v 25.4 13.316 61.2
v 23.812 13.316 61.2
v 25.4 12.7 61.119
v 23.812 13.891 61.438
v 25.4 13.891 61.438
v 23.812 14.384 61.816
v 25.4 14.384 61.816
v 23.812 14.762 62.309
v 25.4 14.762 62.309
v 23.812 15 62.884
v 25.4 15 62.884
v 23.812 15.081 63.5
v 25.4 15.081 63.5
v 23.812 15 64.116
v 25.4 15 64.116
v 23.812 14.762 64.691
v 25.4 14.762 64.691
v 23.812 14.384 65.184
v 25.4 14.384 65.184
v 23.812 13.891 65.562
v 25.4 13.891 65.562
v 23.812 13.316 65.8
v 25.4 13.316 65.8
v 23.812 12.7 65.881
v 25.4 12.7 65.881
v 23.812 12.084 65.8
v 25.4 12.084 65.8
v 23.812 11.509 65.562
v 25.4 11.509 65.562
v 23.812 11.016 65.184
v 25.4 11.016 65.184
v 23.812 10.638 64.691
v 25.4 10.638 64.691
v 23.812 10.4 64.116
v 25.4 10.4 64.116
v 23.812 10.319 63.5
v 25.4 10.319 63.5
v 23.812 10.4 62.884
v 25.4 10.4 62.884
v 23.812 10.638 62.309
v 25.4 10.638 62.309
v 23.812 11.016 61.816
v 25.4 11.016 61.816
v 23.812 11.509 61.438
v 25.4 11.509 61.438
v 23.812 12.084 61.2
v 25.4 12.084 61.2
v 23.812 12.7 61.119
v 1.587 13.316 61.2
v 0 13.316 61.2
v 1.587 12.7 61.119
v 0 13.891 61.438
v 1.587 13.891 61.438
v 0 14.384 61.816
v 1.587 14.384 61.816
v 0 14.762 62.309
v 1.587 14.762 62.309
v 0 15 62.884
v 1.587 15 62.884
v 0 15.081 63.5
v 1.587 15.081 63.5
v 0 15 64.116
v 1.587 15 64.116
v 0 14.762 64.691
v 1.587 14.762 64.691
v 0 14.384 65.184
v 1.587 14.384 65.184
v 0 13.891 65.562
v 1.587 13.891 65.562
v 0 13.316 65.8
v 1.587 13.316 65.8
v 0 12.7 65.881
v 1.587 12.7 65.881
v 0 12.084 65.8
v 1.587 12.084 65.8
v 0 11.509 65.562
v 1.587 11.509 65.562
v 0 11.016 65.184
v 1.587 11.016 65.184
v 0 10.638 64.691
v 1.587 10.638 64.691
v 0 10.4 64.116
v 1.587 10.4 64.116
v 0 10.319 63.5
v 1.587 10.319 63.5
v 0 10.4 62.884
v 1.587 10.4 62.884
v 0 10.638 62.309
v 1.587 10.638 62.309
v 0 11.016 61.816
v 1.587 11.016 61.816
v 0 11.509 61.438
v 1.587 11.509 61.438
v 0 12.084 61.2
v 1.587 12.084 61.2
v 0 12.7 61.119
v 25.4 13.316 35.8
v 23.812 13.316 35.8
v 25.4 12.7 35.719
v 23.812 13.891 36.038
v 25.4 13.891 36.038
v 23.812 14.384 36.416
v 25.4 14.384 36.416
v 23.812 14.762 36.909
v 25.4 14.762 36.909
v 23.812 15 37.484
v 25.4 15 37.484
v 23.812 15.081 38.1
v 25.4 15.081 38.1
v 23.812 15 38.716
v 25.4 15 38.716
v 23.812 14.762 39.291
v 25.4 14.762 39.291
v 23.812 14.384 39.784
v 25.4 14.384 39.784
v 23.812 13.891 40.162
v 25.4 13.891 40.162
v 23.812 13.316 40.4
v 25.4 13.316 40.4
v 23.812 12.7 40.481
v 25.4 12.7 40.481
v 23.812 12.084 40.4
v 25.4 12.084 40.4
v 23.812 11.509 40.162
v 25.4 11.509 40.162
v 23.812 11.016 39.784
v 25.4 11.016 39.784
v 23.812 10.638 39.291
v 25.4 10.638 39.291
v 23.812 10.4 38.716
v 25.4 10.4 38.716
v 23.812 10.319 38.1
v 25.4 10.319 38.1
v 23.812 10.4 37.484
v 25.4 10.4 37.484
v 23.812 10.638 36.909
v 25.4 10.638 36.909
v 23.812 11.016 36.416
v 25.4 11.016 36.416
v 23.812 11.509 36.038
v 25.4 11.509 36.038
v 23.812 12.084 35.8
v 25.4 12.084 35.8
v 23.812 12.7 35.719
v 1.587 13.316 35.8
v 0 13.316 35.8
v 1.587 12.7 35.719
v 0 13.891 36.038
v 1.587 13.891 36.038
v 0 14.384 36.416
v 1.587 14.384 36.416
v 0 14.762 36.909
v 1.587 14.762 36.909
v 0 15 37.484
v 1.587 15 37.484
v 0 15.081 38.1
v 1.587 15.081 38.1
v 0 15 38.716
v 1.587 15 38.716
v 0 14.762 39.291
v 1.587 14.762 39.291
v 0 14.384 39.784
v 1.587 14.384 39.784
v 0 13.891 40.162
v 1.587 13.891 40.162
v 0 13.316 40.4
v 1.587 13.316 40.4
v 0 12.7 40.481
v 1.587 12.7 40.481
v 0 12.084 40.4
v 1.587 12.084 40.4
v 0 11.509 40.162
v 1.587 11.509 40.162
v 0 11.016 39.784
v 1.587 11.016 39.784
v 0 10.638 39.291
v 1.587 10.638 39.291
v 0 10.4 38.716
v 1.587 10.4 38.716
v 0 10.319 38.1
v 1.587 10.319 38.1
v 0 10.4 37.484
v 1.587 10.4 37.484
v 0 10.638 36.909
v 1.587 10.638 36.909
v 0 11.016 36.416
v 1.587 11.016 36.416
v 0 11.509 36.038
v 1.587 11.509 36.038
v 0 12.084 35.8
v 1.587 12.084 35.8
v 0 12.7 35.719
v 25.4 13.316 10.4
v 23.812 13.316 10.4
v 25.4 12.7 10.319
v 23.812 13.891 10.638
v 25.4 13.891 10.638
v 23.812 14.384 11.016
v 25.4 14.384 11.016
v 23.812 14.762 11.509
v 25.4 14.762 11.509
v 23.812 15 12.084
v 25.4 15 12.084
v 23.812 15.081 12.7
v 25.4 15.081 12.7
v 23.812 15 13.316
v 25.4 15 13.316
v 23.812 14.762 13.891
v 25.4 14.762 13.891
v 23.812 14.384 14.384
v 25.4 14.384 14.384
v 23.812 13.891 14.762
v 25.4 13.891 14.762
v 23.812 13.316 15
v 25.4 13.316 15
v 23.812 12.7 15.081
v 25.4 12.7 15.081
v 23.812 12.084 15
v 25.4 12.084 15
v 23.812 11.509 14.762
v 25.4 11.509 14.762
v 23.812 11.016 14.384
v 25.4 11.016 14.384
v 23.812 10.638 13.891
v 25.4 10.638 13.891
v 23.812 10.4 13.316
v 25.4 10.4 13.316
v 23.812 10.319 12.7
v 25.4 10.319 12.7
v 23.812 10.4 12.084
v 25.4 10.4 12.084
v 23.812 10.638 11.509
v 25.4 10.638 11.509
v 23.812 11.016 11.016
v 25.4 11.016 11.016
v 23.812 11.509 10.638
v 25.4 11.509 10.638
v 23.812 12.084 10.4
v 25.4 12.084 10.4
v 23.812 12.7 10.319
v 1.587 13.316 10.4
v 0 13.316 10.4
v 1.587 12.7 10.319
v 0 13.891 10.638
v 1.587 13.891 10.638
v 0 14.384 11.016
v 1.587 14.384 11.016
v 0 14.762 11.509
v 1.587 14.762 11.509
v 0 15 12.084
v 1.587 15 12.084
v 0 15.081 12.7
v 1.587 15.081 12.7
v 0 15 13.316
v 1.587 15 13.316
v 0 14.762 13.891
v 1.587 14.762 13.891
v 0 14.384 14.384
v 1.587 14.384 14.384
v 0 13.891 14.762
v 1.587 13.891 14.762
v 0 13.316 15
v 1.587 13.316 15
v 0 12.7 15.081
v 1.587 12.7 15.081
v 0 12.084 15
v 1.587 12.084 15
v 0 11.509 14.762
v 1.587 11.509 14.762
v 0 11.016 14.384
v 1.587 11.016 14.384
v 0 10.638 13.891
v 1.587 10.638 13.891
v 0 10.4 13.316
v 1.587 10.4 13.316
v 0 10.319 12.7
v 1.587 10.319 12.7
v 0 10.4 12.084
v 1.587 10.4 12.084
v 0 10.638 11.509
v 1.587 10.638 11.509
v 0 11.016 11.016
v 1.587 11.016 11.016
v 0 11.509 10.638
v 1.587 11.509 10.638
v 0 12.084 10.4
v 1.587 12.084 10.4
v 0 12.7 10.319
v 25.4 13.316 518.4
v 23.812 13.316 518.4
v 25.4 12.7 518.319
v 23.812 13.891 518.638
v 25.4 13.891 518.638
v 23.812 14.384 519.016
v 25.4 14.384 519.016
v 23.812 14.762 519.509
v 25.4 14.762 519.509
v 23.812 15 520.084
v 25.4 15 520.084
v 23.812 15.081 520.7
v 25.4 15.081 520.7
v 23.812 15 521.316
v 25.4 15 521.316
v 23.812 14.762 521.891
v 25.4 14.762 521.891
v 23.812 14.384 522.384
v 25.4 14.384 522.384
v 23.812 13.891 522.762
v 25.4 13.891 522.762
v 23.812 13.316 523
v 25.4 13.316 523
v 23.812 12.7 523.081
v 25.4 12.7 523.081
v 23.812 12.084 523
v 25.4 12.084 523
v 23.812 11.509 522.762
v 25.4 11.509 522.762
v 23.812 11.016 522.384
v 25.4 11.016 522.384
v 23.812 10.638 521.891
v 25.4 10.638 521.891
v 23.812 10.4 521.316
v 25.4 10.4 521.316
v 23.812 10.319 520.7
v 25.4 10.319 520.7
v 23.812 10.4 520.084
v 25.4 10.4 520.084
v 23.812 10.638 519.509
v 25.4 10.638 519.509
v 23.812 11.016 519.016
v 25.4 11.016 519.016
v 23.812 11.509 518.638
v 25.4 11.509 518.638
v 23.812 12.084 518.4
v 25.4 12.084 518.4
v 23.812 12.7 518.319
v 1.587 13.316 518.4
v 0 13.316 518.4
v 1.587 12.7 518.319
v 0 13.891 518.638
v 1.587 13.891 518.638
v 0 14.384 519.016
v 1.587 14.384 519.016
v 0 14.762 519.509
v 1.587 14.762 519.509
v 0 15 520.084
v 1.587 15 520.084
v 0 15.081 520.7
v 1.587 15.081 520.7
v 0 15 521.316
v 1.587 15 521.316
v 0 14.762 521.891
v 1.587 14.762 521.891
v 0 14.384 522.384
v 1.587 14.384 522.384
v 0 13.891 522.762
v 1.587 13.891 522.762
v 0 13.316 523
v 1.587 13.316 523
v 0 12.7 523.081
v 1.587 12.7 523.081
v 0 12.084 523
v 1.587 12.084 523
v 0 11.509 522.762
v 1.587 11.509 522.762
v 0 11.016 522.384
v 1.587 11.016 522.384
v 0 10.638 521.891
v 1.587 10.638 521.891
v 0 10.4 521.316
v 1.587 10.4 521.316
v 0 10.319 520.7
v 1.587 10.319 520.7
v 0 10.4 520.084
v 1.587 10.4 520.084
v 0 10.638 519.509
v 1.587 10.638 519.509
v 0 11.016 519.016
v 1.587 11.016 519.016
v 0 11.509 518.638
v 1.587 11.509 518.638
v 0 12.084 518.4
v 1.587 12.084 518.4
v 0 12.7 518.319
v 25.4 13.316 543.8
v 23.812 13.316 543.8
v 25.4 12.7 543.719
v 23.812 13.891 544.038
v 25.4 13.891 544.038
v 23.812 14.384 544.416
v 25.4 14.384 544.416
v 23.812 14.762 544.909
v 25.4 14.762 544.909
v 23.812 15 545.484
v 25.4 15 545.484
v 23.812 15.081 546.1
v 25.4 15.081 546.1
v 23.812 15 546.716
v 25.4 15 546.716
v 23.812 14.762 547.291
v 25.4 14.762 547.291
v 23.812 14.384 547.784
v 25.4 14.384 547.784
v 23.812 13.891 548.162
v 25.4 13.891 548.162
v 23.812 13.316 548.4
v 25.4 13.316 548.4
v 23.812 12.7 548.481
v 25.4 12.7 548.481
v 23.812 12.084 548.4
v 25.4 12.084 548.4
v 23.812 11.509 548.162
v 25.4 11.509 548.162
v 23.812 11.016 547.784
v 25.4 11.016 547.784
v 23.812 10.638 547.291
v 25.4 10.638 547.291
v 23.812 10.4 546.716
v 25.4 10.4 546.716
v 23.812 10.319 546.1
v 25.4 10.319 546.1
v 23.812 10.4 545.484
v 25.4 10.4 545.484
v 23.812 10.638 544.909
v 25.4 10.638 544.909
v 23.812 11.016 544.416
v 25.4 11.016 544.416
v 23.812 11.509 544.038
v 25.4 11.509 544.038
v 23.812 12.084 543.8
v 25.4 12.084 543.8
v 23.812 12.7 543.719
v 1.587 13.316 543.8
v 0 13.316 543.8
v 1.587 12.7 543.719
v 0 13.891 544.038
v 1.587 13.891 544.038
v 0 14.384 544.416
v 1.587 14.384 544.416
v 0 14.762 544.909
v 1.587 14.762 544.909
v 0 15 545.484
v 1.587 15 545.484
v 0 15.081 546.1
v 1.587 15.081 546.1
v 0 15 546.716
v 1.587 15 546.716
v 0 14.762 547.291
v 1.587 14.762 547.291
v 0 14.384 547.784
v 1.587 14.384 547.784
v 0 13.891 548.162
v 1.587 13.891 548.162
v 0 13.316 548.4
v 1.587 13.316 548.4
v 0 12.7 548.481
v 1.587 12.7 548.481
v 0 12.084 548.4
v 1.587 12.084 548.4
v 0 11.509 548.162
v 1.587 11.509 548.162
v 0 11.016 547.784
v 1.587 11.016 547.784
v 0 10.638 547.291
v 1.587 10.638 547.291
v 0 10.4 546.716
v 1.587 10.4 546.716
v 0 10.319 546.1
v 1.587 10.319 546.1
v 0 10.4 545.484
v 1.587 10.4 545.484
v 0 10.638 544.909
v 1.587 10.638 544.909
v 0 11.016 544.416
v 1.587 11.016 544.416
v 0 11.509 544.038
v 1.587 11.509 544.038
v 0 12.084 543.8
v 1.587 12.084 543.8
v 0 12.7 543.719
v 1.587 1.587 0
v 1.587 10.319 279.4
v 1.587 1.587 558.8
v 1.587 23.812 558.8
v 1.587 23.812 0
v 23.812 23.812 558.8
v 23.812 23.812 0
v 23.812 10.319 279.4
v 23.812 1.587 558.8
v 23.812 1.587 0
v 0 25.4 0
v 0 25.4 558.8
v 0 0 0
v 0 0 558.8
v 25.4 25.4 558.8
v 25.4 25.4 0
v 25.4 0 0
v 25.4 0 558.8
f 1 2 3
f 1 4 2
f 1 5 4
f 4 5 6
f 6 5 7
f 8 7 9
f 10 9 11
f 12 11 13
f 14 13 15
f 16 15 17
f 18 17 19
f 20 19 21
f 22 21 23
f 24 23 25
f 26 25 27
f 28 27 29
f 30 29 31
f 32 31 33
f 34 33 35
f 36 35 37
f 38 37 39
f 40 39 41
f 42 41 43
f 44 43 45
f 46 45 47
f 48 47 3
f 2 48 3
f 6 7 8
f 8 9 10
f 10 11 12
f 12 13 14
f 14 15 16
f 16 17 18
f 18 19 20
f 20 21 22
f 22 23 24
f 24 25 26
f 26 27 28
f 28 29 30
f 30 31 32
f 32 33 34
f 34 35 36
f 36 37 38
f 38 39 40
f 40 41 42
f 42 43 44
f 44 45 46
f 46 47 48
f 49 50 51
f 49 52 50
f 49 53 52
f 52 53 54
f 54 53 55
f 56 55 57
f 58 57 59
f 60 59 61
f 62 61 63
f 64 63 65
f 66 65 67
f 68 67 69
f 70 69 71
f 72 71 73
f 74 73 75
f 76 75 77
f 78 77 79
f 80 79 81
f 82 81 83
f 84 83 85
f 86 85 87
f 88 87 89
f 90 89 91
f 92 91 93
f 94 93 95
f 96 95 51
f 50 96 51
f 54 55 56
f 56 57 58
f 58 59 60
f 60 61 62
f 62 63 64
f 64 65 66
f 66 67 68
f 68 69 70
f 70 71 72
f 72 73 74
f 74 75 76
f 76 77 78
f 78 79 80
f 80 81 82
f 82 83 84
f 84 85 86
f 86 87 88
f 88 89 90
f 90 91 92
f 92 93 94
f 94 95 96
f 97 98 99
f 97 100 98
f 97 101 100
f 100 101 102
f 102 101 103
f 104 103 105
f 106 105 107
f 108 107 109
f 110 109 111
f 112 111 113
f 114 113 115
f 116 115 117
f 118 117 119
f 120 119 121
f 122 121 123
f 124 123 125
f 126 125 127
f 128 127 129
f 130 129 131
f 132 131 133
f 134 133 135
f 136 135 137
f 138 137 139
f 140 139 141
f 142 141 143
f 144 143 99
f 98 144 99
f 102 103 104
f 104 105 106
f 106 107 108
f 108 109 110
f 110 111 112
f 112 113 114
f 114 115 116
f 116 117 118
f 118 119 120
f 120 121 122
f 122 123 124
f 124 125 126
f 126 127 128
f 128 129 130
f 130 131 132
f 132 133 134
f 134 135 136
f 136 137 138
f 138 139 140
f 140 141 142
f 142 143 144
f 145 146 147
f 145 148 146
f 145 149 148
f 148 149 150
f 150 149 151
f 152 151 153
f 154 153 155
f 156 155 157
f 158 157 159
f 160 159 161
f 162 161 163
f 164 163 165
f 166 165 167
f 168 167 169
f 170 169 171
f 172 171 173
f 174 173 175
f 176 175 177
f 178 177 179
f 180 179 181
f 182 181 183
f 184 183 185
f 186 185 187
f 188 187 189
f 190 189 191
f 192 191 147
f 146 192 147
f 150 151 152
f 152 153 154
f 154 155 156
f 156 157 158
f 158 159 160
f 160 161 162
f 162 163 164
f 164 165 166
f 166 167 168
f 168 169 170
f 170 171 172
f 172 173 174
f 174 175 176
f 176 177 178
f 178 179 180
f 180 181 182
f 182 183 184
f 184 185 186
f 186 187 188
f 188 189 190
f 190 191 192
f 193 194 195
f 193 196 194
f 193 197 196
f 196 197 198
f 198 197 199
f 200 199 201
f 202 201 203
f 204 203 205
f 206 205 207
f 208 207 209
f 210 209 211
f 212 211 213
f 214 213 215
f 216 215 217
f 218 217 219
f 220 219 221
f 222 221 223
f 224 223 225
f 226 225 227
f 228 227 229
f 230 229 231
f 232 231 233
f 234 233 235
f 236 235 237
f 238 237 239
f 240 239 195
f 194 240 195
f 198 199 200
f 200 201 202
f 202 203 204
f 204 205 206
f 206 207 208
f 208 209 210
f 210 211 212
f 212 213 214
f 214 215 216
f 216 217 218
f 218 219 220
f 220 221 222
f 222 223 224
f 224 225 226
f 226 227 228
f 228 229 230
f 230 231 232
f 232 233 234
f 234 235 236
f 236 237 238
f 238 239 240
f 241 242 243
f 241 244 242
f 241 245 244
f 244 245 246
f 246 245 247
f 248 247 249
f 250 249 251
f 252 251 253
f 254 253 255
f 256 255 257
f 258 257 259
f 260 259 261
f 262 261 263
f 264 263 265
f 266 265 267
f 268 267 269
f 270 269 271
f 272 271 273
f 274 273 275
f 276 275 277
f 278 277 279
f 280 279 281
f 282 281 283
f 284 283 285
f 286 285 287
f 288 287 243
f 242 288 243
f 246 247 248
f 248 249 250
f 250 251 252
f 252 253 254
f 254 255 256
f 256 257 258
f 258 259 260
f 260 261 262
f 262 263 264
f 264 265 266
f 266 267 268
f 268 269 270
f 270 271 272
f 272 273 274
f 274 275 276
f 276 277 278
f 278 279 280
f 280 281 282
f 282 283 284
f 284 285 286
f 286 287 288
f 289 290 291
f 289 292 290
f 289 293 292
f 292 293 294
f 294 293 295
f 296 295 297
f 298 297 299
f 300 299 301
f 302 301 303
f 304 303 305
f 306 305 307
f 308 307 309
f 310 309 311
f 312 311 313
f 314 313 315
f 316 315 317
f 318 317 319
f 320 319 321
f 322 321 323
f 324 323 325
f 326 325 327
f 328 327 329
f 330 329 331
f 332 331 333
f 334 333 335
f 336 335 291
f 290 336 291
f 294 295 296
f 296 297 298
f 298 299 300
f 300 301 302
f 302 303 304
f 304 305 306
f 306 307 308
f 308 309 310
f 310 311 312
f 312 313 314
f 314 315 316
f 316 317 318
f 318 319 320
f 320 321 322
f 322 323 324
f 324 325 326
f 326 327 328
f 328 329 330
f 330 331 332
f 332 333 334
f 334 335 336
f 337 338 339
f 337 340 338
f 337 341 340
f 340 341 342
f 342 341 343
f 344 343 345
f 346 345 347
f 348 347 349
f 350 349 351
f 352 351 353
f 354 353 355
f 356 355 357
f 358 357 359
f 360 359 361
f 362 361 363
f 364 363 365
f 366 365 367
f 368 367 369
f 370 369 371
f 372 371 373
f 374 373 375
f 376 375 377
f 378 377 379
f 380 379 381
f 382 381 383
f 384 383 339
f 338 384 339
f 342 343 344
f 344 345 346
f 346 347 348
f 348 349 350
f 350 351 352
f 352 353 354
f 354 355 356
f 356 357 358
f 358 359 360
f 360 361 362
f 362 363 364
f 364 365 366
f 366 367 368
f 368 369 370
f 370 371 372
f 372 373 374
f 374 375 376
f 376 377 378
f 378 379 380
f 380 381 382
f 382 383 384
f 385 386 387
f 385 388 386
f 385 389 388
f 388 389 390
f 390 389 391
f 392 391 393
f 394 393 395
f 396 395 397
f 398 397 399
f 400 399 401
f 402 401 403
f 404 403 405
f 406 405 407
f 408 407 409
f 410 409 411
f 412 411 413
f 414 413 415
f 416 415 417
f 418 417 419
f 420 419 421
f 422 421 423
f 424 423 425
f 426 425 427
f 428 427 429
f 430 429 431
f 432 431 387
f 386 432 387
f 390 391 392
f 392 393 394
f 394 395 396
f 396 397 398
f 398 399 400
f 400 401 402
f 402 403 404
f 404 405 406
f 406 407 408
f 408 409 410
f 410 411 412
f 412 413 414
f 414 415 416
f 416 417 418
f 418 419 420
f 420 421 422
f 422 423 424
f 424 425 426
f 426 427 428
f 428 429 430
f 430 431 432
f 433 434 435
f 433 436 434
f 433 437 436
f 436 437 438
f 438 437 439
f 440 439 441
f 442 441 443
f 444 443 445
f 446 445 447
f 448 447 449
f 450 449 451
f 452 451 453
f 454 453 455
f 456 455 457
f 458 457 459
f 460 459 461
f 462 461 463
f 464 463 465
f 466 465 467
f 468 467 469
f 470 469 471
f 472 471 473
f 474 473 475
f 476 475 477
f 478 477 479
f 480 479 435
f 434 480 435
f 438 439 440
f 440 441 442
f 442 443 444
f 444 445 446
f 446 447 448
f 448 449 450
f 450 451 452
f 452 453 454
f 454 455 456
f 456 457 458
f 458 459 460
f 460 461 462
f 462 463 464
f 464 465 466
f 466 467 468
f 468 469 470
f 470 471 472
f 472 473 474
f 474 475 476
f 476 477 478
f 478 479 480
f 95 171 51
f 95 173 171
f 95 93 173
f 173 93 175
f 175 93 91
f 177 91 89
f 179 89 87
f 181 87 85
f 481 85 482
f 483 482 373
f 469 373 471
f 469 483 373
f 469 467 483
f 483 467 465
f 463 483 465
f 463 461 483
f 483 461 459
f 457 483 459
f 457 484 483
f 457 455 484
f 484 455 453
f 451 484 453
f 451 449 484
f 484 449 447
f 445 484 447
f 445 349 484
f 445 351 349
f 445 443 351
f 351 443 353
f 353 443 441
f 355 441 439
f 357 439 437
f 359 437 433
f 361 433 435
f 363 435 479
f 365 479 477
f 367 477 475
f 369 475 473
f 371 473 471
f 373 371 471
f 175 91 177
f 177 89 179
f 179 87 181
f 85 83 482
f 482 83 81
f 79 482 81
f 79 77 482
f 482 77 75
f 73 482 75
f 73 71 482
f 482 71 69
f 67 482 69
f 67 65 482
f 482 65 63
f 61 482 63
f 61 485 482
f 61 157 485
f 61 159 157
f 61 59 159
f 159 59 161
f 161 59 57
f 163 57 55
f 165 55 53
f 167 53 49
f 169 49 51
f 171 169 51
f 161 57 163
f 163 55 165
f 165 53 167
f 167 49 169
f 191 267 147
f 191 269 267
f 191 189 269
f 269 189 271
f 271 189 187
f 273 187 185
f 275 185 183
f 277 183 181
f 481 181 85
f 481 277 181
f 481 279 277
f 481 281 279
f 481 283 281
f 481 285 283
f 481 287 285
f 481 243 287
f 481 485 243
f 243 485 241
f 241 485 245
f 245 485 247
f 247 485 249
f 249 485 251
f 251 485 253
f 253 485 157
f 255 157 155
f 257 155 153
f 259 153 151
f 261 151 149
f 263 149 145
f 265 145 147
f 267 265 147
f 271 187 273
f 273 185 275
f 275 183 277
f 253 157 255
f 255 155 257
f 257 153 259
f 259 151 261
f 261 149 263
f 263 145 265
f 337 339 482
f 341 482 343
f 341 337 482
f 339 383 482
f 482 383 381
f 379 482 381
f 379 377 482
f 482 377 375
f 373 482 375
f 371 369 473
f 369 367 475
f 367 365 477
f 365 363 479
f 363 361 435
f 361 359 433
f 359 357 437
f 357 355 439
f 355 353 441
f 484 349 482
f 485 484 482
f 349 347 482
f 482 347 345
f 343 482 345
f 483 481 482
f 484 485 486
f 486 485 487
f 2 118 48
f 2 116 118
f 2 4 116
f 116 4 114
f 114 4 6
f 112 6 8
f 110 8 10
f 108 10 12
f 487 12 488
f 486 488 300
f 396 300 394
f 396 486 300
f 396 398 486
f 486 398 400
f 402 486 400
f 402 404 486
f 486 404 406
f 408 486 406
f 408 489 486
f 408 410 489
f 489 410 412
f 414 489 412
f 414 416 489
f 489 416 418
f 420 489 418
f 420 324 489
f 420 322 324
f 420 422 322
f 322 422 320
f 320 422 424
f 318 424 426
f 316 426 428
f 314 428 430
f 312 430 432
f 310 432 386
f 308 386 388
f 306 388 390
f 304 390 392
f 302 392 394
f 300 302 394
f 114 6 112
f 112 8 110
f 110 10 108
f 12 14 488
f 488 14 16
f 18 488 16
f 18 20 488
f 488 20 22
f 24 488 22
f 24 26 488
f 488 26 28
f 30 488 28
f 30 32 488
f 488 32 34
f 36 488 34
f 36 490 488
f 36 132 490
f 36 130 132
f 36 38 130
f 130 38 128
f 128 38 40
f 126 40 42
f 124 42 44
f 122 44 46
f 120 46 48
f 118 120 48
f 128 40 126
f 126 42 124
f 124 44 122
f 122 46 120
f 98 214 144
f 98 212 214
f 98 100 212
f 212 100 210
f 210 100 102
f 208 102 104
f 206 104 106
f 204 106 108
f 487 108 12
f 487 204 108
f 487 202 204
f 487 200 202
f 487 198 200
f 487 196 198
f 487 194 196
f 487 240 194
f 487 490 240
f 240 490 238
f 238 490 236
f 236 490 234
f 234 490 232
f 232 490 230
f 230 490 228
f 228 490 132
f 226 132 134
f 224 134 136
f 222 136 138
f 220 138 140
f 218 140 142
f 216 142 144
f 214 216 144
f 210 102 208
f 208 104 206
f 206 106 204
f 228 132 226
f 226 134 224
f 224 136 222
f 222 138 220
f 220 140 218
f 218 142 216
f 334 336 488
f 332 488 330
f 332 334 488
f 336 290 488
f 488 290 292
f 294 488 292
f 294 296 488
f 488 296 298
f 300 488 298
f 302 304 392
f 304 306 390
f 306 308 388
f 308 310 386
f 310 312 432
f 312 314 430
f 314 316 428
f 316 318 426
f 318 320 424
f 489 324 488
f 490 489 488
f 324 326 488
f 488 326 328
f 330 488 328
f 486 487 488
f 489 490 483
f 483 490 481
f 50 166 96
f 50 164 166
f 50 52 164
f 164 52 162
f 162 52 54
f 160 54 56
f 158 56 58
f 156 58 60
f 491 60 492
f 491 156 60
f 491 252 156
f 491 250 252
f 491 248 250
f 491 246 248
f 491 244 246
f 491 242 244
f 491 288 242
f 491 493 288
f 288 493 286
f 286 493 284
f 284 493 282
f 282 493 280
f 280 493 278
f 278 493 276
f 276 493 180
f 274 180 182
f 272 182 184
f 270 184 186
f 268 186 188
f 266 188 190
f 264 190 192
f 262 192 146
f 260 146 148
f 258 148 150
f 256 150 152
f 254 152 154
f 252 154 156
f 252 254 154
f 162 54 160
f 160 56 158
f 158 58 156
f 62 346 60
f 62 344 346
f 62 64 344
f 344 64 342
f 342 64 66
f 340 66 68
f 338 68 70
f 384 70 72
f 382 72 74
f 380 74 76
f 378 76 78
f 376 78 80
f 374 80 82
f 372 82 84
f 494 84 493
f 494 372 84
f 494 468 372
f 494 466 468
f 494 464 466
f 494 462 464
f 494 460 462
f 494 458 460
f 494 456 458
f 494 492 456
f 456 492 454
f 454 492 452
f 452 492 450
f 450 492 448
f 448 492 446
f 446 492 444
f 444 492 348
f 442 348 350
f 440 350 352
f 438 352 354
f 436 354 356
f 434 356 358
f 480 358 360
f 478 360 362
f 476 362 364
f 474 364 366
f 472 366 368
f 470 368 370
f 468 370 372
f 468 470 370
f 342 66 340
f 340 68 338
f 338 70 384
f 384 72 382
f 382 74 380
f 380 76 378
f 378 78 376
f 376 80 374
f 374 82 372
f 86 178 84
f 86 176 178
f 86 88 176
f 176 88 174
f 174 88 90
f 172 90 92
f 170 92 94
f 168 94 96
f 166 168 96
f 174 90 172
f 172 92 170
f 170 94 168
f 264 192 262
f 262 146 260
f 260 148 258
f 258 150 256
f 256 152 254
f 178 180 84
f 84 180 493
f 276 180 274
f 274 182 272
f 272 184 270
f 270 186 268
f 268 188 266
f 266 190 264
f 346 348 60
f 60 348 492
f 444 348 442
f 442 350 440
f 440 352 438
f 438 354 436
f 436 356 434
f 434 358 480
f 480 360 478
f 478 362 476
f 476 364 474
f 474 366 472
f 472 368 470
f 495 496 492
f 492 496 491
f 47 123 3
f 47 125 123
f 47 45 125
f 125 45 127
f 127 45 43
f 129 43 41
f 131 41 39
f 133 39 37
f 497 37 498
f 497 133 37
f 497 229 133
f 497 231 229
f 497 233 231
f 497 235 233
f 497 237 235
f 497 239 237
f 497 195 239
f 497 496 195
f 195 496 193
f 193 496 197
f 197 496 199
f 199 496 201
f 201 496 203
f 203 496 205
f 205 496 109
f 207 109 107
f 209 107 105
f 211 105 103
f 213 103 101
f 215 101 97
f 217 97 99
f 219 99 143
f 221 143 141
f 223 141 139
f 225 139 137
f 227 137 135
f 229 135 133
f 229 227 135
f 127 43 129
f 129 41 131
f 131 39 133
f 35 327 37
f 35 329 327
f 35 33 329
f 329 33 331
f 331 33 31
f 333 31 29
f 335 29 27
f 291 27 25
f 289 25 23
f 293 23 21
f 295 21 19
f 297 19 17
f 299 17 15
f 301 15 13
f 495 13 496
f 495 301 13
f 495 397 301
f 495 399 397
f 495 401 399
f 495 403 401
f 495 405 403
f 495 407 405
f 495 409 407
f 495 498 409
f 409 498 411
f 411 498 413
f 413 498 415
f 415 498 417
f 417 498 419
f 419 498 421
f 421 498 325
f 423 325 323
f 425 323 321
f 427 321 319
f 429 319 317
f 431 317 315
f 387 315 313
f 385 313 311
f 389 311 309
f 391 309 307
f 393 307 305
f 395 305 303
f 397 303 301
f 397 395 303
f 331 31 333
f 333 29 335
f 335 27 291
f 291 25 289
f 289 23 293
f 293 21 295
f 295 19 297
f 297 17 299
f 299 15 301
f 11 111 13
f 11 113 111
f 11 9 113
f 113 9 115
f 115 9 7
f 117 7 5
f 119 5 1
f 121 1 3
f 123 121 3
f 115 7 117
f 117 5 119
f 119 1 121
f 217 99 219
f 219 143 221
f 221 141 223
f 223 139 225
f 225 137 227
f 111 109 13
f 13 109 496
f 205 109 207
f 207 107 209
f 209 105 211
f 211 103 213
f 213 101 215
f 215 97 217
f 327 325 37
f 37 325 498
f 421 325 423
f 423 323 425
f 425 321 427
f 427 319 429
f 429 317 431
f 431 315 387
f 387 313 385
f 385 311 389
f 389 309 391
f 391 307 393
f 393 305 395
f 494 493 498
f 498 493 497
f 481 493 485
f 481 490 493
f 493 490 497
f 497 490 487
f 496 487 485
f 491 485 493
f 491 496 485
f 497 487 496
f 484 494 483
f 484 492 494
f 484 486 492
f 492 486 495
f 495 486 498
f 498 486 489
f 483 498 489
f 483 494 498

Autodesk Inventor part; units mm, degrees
ref_plane "YZ Plane" through (0, 0, 0) normal (1, 0, 0) x (0, 1, 0)
ref_plane "XZ Plane" through (0, 0, 0) normal (0, 1, 0) x (-1, 0, 0)
ref_plane "XY Plane" through (0, 0, 0) normal (0, 0, 1) x (1, 0, 0)
sketch "Sketch1" plane through (0, 0, 0) normal (0, 0, 1) x (1, 0, 0)
  line L0 (0, 0) -> (25.4, 0)
  line L1 (25.4, 0) -> (25.4, 25.4)
  line L2 (25.4, 25.4) -> (0, 25.4)
  line L3 (0, 25.4) -> (0, 0)
  dimension "d0" = 25.4
  dimension "d1" = 25.4
extrude "Extrusion1" add sketch "Sketch1" along normal blind 558.8
shell "Shell1" thickness 1.5875 removed faces 2 at (16.9333, 8.4667, 0) at (16.9333, 8.4667, 558.8)
sketch "Sketch2" plane through (25.4, 0, 0) normal (1, 0, 0) x (0, 0, -1)
  line L0 (-558.8, 25.4) -> (-558.8, 0) projected
  line L1 (0, 25.4) -> (-558.8, 25.4) projected
  circle A0 centre (-546.1, 12.7) radius 2.3813
  circle A1 centre (-520.7, 12.7) radius 2.3813
  dimension "d5" = 12.7
  dimension "d6" = 12.7
  dimension "d7" = 25.4
  dimension "d8" = 12.7
  dimension "d9" = 4.7625
  dimension "d10" = 4.7625
extrude "Extrusion2" cut sketch "Sketch2" against normal through all
sketch "Sketch3" plane through (25.4, 0, 0) normal (1, 0, 0) x (0, 0, -1)
  line L0 (0, 0) -> (0, 25.4) projected
  line L1 (0, 25.4) -> (-558.8, 25.4) projected
  circle A0 centre (-12.7, 12.7) radius 2.3813
  circle A1 centre (-38.1, 12.7) radius 2.3813
  circle A2 centre (-63.5, 12.7) radius 2.3813
  line L2 (-63.5, 12.7) -> (-38.1, 12.7) construction
  line L3 (-38.1, 12.7) -> (-12.7, 12.7) construction
  dimension "d13" = 12.7
  dimension "d14" = 25.4
  dimension "d15" = 12.7
  dimension "d16" = 4.7625
extrude "Extrusion3" cut sketch "Sketch3" against normal through all
properties part number "Frame_RearVerticalSupport" material "Aluminum-6061"
